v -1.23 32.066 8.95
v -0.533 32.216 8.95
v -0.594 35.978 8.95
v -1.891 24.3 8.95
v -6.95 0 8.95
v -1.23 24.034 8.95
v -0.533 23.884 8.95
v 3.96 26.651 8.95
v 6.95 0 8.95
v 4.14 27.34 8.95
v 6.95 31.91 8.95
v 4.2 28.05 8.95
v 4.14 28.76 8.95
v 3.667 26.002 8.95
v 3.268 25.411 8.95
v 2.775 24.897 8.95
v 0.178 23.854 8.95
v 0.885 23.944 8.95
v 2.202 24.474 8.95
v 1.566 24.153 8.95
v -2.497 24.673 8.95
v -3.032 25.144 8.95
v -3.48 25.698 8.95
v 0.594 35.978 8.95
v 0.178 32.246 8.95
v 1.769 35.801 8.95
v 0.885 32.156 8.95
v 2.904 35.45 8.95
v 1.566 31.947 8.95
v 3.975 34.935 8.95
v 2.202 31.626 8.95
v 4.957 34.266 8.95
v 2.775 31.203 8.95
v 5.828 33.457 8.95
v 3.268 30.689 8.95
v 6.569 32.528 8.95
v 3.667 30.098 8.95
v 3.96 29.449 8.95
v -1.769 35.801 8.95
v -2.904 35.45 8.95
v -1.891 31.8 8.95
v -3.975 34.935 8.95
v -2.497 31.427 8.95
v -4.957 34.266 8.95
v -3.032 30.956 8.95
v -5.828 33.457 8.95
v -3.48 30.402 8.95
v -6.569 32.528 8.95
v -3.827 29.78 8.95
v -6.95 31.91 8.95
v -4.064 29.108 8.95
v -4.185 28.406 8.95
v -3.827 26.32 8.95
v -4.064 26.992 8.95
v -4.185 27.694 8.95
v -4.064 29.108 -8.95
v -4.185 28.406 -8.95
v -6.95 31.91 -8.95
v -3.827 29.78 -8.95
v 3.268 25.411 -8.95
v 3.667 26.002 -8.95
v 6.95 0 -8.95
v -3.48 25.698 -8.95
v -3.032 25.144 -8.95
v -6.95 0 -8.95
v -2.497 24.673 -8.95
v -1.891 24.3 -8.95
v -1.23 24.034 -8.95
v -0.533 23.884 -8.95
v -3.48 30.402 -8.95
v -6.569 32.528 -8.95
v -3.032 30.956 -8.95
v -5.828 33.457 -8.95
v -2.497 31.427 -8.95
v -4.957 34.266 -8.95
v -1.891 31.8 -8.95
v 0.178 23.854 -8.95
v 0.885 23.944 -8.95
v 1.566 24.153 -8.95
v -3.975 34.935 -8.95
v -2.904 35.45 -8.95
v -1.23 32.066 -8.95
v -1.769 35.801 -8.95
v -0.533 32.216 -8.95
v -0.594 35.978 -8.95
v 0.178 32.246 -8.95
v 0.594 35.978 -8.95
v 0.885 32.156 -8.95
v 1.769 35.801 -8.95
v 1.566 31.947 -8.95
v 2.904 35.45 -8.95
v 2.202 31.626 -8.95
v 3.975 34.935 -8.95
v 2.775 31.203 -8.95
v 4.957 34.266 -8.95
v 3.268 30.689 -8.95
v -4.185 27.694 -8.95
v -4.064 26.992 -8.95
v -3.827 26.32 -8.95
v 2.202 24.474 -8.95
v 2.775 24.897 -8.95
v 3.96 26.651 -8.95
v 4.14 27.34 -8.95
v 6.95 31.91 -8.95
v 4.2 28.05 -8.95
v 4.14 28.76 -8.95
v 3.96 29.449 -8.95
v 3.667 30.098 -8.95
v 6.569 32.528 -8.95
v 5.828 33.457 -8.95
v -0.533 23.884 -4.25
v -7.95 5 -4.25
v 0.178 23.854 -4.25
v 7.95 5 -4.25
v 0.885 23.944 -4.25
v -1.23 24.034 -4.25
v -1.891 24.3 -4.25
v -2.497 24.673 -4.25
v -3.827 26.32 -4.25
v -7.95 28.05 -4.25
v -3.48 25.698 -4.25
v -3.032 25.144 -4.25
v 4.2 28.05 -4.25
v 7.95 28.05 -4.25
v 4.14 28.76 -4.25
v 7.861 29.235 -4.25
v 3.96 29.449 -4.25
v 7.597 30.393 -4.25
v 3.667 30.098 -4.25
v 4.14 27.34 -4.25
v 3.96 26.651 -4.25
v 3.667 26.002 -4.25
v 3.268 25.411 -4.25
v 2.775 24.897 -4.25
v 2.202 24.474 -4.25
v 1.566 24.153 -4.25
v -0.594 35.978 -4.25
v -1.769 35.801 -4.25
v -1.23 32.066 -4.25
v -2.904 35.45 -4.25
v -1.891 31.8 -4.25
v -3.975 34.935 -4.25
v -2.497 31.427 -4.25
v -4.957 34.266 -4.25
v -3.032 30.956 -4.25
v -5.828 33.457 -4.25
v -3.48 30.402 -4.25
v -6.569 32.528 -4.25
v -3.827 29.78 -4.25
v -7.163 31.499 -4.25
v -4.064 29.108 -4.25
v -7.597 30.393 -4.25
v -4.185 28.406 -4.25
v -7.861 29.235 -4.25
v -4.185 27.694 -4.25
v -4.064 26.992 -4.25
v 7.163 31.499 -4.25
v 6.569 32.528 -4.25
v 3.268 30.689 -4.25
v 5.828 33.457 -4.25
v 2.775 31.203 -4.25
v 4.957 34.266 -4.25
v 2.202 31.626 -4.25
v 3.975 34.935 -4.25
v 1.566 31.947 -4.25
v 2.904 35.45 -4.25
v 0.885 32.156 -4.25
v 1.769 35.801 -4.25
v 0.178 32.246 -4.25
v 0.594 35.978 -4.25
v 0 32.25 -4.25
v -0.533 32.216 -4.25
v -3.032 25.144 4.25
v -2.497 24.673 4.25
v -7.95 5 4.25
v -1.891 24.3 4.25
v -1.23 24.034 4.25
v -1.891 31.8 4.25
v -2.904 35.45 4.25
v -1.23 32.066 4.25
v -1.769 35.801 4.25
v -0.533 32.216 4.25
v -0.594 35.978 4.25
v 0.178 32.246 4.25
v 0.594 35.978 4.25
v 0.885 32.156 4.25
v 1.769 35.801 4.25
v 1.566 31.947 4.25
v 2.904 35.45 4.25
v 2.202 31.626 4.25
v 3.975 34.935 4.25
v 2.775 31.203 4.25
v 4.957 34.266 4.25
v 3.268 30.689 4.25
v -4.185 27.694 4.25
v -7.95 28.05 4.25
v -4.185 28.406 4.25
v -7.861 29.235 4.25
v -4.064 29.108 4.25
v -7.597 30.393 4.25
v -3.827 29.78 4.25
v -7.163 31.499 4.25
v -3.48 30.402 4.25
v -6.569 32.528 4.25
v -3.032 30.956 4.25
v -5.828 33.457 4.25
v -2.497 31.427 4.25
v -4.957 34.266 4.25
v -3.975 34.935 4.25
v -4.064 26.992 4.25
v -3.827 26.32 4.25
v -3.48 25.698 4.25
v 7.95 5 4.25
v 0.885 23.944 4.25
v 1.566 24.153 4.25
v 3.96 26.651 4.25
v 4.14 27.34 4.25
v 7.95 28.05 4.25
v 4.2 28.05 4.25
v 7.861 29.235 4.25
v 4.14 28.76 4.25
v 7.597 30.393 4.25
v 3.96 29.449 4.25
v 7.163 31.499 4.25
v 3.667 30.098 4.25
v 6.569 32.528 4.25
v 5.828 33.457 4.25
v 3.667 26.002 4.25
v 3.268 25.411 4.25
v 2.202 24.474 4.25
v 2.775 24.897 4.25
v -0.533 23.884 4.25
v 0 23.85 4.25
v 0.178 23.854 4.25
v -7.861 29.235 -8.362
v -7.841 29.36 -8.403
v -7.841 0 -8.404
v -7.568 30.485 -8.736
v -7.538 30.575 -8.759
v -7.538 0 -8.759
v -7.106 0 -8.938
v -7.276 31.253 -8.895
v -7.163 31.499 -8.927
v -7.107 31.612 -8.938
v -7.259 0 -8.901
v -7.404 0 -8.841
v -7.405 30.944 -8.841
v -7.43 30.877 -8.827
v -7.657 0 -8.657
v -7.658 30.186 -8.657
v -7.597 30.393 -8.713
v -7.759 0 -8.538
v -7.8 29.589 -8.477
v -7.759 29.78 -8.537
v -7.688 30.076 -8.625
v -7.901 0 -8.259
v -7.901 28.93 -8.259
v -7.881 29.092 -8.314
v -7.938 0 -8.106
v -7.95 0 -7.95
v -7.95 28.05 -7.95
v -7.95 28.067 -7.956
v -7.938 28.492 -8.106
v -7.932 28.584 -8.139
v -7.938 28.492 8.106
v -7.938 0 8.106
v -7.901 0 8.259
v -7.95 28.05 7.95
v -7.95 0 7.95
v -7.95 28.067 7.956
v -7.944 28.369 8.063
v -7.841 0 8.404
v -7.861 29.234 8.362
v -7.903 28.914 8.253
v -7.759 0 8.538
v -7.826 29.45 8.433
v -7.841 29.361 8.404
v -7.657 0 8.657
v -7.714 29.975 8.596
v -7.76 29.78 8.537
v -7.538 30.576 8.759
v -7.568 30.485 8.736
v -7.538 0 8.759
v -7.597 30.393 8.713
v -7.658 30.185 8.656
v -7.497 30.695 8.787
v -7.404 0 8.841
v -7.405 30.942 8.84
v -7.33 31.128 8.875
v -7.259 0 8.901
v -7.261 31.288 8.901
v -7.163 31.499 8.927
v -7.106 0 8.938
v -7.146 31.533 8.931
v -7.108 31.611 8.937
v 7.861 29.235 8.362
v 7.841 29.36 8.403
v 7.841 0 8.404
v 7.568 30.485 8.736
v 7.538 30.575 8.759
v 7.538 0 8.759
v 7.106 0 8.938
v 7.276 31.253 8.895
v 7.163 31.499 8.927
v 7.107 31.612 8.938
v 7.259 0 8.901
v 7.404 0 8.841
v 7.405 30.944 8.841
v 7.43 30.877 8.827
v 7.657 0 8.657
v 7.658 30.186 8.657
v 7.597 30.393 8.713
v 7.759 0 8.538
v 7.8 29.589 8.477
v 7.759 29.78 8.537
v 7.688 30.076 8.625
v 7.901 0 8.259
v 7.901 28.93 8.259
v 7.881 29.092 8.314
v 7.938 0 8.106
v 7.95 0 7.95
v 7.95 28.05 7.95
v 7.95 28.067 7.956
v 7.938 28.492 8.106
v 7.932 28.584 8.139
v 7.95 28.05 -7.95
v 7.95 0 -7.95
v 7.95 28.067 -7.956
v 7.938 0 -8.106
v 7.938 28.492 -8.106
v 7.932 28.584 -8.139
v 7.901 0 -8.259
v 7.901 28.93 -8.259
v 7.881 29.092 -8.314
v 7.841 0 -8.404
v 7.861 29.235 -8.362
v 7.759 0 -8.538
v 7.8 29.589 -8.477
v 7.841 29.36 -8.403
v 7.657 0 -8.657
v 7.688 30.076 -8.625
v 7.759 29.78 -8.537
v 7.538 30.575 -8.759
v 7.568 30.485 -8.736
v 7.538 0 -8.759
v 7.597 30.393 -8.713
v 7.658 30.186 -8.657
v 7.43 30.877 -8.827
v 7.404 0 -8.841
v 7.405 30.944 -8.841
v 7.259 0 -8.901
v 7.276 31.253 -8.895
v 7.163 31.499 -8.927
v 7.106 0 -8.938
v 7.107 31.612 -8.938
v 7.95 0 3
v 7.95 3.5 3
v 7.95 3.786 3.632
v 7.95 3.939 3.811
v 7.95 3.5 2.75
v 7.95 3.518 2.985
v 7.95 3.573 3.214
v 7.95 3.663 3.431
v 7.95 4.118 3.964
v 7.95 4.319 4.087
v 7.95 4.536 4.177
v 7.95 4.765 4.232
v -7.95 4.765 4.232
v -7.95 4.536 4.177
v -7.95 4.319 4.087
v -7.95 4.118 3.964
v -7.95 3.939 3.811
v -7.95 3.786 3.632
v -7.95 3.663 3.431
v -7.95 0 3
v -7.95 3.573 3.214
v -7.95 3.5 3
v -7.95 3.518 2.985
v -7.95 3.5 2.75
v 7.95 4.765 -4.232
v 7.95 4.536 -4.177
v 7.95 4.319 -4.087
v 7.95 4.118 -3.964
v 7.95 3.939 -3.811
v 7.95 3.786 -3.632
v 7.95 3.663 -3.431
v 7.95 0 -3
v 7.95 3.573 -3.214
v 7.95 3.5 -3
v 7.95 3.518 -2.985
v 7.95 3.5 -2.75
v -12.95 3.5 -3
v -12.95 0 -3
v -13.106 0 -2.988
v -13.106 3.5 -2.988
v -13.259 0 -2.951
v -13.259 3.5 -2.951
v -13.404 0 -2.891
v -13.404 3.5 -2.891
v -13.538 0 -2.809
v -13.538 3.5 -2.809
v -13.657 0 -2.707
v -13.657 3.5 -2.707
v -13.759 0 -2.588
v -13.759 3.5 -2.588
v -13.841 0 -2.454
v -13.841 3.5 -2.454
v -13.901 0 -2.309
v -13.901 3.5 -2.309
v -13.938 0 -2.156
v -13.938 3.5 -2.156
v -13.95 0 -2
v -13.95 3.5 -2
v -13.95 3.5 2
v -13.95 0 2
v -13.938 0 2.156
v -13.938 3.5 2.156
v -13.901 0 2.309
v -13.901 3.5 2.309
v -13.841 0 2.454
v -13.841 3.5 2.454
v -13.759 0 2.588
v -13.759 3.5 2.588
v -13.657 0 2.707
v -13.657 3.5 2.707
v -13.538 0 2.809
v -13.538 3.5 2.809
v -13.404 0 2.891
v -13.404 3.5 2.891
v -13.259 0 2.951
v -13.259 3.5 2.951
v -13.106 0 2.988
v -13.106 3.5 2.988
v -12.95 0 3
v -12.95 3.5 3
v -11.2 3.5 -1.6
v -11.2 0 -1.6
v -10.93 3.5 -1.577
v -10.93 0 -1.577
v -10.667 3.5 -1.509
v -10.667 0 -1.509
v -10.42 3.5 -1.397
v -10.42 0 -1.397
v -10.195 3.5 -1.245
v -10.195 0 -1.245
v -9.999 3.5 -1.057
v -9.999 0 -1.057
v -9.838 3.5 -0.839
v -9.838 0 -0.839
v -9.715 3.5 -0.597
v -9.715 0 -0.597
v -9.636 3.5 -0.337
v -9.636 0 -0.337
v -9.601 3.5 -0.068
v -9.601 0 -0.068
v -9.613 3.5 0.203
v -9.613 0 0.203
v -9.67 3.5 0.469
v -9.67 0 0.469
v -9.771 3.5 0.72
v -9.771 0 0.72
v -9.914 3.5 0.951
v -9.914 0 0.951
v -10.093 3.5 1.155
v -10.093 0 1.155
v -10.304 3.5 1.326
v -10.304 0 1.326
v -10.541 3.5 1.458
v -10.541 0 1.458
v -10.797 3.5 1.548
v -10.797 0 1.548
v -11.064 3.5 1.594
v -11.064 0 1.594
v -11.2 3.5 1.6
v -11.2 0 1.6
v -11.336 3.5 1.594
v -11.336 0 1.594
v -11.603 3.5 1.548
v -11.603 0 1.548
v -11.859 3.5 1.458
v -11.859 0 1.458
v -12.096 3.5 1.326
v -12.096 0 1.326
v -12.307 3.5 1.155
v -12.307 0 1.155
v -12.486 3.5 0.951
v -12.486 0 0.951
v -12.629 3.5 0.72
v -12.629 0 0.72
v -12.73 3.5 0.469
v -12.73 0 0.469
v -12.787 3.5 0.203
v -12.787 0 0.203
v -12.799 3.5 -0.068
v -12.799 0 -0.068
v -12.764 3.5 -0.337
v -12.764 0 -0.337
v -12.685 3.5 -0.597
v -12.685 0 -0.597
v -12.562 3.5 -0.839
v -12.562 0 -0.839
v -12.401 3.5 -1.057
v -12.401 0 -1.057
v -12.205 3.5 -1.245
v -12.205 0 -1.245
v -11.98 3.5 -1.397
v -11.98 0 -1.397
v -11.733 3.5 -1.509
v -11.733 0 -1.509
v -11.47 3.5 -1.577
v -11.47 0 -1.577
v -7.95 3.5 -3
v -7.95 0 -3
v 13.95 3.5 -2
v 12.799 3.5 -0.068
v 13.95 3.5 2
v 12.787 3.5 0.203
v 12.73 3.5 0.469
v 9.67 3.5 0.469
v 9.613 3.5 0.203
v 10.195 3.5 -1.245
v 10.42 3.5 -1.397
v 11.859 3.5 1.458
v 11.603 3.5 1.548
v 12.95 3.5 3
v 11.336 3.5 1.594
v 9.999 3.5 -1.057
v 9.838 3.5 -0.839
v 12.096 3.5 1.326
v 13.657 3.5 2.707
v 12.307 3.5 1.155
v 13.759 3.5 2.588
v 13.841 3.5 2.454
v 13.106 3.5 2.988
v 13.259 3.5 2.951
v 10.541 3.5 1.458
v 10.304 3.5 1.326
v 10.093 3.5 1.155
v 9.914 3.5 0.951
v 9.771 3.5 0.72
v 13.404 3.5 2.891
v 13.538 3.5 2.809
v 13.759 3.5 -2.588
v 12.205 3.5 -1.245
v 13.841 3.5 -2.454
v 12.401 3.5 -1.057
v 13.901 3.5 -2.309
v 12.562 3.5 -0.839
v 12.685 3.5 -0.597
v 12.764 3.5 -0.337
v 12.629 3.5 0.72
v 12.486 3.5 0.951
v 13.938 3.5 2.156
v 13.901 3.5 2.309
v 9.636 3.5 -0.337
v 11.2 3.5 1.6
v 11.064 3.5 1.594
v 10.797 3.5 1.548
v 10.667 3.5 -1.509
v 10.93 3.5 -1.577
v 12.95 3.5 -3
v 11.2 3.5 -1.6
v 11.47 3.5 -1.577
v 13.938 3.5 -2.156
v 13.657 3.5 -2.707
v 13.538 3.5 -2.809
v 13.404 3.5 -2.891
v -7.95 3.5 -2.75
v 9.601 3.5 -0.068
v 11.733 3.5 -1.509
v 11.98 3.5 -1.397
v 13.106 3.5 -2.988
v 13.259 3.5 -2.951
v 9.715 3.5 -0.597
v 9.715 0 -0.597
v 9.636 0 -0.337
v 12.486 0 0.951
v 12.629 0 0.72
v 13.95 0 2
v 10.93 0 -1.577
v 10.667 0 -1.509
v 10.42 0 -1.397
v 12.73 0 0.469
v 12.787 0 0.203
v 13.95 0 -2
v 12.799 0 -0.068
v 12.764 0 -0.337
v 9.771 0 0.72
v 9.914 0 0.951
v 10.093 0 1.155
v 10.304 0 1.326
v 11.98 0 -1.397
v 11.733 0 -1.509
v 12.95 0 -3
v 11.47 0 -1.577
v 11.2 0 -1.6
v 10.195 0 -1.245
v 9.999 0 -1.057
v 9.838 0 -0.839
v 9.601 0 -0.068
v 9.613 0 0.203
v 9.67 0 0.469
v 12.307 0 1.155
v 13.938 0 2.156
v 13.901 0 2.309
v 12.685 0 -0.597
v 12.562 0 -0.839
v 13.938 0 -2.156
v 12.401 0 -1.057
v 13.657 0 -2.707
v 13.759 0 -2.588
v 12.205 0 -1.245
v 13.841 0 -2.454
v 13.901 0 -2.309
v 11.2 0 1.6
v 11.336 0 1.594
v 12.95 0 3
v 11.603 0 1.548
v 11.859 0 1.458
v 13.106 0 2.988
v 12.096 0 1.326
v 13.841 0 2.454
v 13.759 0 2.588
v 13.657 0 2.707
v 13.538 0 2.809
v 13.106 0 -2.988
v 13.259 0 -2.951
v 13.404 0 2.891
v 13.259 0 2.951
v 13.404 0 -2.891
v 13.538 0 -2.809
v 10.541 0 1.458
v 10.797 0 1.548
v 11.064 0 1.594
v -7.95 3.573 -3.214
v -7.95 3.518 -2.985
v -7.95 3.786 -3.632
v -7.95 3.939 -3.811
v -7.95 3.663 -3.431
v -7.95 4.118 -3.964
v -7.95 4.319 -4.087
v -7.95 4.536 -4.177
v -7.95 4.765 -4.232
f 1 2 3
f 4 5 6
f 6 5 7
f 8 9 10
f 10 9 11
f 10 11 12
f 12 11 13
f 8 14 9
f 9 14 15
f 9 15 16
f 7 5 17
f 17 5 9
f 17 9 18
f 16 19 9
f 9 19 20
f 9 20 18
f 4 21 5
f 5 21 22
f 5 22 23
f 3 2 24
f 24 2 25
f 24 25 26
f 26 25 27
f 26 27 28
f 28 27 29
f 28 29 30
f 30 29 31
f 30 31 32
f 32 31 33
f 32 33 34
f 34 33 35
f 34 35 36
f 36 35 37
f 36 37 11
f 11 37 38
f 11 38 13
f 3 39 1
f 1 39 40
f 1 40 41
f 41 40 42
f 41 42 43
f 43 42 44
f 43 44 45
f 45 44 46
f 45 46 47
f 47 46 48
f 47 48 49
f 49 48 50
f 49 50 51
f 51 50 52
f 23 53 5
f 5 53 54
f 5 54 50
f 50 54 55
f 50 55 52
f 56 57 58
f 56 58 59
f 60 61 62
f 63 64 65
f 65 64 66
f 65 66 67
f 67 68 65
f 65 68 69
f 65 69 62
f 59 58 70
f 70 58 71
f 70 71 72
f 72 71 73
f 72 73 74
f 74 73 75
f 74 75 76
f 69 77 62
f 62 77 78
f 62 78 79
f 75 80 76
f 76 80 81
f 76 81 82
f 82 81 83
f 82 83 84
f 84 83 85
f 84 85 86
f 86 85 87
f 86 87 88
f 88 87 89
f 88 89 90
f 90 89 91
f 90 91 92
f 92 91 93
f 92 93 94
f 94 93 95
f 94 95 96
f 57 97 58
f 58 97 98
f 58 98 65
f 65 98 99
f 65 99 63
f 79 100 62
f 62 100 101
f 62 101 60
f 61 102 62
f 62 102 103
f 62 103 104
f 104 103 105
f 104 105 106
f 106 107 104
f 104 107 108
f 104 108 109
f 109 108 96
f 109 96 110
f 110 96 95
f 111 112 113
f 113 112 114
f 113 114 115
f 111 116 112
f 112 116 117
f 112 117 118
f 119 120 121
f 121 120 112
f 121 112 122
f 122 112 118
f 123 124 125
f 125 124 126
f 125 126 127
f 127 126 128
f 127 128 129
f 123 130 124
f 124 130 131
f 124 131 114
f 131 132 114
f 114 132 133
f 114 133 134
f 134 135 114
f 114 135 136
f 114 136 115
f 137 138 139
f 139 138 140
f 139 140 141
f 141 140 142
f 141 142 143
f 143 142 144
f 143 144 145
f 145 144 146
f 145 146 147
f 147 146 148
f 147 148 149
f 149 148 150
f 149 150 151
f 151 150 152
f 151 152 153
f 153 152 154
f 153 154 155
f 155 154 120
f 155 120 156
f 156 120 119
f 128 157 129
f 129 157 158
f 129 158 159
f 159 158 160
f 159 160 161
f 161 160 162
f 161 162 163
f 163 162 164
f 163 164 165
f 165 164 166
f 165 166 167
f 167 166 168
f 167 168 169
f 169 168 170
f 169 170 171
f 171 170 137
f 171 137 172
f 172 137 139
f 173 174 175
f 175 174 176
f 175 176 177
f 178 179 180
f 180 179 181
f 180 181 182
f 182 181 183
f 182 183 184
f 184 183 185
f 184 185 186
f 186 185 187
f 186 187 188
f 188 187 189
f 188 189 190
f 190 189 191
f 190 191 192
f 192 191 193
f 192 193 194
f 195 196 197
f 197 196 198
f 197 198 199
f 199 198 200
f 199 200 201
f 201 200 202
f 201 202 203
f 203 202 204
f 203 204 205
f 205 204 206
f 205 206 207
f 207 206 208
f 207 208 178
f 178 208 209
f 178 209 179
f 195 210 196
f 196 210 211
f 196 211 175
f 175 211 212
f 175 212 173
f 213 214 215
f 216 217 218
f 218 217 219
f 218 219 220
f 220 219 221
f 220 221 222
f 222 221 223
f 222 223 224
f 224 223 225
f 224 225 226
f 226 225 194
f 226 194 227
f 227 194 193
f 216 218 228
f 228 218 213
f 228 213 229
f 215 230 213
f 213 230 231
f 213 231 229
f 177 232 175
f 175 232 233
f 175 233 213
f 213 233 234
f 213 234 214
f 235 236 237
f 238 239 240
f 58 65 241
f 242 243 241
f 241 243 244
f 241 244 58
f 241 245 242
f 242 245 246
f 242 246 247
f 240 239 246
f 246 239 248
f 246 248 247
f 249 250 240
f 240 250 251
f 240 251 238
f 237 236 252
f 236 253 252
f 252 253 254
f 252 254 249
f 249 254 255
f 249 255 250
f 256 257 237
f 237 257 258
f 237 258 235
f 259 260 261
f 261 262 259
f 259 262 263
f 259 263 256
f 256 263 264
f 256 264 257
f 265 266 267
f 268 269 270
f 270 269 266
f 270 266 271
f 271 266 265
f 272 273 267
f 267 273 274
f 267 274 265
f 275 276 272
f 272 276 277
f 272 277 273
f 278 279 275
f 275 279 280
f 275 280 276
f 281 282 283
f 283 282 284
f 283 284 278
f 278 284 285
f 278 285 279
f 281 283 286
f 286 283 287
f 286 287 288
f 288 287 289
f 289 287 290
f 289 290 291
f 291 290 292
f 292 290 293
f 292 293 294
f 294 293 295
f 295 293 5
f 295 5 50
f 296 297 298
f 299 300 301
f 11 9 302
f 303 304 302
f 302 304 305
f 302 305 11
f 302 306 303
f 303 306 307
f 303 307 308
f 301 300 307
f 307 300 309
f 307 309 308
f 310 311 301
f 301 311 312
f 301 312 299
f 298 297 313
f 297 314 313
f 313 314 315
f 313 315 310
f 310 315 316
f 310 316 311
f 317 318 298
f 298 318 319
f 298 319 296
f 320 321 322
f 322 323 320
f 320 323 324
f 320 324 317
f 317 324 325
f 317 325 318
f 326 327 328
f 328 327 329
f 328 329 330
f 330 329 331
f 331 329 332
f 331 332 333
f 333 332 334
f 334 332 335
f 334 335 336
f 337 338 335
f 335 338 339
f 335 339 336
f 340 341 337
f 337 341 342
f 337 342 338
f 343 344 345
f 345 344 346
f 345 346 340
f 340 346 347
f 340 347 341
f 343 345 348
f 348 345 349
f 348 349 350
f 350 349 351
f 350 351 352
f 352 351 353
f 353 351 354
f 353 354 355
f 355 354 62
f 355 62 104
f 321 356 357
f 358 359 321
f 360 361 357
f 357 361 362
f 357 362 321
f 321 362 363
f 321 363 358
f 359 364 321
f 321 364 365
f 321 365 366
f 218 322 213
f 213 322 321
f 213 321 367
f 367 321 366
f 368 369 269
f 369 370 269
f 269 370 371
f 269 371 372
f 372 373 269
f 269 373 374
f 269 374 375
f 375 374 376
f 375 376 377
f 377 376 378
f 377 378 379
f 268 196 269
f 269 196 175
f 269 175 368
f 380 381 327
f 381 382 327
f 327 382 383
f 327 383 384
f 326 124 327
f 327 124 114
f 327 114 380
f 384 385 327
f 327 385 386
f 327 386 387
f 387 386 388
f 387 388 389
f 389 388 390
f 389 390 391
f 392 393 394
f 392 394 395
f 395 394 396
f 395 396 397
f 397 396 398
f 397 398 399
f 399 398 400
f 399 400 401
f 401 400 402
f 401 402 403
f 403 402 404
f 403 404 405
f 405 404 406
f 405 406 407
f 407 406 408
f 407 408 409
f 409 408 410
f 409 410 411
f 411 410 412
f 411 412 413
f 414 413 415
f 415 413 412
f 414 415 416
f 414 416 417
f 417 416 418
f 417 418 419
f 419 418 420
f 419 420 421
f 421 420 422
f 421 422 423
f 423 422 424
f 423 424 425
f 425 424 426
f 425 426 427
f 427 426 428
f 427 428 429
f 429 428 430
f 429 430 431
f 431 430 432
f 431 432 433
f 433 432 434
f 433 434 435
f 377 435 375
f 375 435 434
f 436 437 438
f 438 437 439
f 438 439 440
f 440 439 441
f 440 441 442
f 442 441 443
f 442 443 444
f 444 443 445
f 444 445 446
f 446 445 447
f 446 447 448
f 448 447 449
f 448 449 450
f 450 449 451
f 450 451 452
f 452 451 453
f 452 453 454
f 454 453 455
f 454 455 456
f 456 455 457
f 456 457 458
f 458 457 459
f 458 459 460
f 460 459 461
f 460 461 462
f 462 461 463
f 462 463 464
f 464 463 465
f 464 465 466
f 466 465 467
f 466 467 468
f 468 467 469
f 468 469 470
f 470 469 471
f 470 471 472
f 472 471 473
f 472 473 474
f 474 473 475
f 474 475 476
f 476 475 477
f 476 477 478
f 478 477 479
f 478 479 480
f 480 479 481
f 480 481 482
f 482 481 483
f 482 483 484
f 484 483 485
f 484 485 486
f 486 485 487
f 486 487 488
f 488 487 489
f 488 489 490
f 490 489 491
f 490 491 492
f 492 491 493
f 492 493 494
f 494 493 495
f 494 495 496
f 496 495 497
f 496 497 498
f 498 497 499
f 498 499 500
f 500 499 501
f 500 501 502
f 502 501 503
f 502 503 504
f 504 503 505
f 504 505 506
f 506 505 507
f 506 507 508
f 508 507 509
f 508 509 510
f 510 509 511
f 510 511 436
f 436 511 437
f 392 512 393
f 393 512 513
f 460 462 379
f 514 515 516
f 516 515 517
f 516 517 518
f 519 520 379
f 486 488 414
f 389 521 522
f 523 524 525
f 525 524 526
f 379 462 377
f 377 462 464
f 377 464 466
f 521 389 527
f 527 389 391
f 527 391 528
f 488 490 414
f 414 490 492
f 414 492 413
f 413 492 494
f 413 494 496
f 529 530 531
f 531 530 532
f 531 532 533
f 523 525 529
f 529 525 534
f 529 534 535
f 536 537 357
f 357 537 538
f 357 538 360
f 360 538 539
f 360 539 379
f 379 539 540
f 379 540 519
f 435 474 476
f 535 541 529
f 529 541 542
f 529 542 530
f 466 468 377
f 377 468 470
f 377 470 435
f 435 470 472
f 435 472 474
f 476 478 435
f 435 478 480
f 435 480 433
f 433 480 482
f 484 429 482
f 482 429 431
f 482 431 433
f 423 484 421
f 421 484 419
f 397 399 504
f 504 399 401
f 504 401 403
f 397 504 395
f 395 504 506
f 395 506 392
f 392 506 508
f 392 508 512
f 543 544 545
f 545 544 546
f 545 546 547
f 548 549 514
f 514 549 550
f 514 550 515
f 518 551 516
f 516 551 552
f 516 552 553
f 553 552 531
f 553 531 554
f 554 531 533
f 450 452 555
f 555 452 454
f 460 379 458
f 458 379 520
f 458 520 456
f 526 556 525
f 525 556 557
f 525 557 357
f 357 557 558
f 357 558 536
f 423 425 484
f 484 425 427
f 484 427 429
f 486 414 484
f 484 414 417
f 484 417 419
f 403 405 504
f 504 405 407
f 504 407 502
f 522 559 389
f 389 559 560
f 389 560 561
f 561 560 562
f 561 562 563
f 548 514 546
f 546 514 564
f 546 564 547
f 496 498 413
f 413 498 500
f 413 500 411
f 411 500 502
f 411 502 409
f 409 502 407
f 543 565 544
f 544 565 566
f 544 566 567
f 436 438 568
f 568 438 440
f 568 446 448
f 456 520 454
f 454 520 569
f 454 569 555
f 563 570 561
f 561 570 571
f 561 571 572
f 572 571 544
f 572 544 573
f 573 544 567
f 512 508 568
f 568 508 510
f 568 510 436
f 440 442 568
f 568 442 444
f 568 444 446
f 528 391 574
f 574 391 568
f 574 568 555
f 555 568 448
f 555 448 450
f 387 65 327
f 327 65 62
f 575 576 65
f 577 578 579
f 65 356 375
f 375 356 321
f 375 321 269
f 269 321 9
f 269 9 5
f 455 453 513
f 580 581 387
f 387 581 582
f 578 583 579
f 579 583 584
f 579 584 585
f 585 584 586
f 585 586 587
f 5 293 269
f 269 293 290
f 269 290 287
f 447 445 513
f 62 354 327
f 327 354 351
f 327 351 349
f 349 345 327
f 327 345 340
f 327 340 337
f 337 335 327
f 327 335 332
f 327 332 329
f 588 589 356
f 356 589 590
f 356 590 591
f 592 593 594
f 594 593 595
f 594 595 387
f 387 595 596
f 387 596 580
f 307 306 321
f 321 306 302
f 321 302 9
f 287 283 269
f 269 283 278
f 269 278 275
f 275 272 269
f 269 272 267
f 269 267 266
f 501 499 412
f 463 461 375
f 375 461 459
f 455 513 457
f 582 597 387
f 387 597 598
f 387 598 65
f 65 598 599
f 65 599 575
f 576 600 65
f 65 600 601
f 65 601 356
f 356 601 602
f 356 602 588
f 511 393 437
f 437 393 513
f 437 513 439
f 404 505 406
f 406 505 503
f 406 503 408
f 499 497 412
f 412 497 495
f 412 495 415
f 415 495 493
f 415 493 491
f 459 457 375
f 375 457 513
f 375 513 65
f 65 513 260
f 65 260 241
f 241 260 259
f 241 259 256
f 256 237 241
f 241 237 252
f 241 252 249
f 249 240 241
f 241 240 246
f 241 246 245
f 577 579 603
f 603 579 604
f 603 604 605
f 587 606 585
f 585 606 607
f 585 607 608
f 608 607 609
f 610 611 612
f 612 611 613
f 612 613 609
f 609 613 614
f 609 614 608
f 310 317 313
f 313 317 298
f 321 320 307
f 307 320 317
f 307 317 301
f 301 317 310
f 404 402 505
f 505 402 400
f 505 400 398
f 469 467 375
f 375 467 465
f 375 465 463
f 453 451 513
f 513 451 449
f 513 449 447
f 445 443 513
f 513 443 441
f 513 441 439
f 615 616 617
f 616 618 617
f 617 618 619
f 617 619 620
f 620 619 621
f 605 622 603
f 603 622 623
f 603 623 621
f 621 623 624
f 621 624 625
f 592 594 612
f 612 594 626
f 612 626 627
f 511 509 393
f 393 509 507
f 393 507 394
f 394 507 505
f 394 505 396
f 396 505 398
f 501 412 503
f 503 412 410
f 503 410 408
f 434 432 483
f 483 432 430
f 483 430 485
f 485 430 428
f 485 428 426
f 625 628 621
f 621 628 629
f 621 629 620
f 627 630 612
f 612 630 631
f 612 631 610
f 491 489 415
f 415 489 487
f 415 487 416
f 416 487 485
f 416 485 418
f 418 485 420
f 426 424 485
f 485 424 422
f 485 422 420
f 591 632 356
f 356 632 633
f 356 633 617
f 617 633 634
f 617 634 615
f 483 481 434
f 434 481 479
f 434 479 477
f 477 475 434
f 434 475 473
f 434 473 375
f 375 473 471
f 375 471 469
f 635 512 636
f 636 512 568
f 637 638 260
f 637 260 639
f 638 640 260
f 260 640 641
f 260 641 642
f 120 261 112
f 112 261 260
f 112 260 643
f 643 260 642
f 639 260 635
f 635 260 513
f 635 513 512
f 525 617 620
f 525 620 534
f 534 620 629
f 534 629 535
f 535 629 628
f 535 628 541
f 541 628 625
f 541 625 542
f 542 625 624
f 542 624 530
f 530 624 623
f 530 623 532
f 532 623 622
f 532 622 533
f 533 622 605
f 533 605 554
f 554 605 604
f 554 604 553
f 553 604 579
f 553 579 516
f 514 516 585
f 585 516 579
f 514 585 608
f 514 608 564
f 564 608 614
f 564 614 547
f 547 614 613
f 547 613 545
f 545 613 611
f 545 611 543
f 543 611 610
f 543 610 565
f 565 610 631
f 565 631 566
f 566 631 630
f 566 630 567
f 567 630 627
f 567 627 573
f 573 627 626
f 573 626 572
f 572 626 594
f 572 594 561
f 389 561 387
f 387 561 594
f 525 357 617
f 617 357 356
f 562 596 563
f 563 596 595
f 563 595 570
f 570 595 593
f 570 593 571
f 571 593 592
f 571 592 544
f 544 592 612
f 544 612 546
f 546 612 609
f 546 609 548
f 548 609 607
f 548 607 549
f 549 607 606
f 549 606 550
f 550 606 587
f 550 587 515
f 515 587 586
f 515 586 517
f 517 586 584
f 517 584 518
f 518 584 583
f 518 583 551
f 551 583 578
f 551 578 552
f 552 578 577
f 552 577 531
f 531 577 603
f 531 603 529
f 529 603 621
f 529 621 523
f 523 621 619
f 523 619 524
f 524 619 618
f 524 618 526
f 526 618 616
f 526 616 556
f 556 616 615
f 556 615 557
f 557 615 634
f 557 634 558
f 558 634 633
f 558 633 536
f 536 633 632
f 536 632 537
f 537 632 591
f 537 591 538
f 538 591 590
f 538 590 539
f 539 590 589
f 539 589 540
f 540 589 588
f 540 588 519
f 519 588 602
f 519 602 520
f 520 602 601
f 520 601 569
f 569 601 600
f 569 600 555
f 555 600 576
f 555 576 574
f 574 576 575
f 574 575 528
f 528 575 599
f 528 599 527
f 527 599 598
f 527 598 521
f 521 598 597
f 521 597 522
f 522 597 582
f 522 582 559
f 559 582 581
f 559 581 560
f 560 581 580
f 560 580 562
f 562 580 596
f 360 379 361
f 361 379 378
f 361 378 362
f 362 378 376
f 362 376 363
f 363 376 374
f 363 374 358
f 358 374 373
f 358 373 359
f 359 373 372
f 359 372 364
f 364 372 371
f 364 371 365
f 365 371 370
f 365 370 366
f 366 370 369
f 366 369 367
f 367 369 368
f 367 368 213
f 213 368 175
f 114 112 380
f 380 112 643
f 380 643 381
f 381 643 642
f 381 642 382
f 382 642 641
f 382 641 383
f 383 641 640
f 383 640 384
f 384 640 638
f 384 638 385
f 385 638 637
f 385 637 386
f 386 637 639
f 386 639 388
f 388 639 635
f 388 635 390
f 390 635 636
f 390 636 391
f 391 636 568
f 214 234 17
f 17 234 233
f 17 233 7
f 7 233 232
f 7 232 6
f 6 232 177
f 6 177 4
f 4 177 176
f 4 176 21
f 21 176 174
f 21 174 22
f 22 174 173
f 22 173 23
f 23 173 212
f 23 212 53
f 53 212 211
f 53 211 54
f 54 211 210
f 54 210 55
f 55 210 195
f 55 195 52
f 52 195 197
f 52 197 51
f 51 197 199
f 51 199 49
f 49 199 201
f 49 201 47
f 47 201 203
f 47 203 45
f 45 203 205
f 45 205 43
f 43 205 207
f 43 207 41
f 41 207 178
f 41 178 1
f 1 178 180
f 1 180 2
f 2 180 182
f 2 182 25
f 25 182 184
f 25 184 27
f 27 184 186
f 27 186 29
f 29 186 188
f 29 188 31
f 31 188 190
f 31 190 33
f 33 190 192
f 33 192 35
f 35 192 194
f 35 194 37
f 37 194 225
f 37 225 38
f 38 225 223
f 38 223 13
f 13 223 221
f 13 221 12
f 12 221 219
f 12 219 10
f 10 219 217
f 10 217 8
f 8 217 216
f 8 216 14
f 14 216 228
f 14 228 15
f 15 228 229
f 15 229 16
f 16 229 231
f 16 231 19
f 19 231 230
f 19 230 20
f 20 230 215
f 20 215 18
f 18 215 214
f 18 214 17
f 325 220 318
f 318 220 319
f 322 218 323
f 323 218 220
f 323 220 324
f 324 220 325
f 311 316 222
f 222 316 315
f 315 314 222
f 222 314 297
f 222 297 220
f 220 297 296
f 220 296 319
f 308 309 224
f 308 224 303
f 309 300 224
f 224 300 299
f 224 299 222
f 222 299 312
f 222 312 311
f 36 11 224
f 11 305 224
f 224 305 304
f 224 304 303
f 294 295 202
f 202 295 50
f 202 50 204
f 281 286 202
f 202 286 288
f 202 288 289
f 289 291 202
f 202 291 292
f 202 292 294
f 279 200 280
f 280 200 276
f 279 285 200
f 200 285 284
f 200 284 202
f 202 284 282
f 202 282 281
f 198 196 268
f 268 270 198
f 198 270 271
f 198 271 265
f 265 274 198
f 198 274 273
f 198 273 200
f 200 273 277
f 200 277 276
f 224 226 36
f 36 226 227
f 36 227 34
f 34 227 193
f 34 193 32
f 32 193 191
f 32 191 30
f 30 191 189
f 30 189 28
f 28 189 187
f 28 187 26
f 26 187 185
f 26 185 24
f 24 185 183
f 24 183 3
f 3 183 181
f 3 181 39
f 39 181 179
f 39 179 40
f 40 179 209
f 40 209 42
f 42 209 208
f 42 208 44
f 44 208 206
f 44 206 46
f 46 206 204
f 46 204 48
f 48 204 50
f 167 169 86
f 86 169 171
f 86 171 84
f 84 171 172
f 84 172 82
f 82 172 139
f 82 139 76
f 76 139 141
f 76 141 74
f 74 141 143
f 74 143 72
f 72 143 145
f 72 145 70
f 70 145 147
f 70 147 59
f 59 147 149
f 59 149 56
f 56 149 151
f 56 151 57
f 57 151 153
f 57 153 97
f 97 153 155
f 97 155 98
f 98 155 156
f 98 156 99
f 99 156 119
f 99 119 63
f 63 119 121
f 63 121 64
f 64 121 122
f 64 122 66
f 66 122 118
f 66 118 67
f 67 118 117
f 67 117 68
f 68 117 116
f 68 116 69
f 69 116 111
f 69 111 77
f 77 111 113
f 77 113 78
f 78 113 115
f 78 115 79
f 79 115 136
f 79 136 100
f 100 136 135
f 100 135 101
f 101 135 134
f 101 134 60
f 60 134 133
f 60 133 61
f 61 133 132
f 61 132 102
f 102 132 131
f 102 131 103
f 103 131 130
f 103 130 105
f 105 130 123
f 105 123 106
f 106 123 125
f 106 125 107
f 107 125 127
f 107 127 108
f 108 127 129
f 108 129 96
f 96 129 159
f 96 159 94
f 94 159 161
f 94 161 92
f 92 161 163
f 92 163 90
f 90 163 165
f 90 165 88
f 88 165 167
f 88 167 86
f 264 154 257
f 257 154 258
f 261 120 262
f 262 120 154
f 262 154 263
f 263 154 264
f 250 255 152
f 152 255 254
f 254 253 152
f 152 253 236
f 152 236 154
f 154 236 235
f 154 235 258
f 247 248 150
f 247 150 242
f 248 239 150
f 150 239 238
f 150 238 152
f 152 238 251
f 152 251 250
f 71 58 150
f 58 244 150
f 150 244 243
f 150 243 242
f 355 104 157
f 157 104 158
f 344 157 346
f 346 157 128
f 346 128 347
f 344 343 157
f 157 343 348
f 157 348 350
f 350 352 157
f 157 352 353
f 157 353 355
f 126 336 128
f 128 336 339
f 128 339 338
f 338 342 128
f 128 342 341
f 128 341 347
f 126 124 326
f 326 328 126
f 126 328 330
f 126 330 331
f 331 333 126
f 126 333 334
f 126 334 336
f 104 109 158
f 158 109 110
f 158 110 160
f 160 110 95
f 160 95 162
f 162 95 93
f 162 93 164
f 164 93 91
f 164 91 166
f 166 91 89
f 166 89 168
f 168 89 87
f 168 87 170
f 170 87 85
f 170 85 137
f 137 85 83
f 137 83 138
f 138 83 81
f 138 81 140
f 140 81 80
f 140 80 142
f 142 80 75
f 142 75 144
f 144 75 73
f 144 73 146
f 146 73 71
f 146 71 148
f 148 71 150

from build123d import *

# Parameters (mm, degrees)
HOLES1_R           = 1.6
HOLES_DEPTH        = 3.5
HOLES_2_DEPTH      = 3.5
BOSS_EXTRUDE_DEPTH = 36
CUT_EXTRUDE1_DEPTH = 44.077981615
HOLE2_R            = 4.2
CUT_EXTRUDE2_DEPTH = 43.555992527


with BuildPart() as part:
    # Holes1 → Holes (new body)
    with BuildSketch(Plane(origin=(0, 0, 0), x_dir=(1, 0, 0), z_dir=(0, 1, 0))):
        with BuildLine():
            Line((-12.95, -3), (-7.95, -3))
            Line((-7.95, -3), (-7.95, 3))
            Line((-7.95, 3), (-12.95, 3))
            ThreePointArc((-12.95, 3), (-13.657106781, 2.707106781), (-13.95, 2))
            Line((-13.95, 2), (-13.95, -2))
            ThreePointArc((-13.95, -2), (-13.657106781, -2.707106781), (-12.95, -3))
        make_face()
        with Locations((-11.2, 0)):
            Circle(HOLES1_R, mode=Mode.SUBTRACT)
    extrude(amount=HOLES_DEPTH)



with BuildPart() as body_2:
    # Holes1 → Holes 2 (new body)
    with BuildSketch(Plane(origin=(0, 0, 0), x_dir=(1, 0, 0), z_dir=(0, 1, 0))):
        with BuildLine():
            Line((7.95, 3), (7.95, -3))
            Line((7.95, -3), (12.95, -3))
            ThreePointArc((12.95, -3), (13.657106781, -2.707106781), (13.95, -2))
            Line((13.95, -2), (13.95, 2))
            ThreePointArc((13.95, 2), (13.657106781, 2.707106781), (12.95, 3))
            Line((12.95, 3), (7.95, 3))
        make_face()
        with Locations((11.2, 0)):
            Circle(HOLES1_R, mode=Mode.SUBTRACT)
    extrude(amount=HOLES_2_DEPTH)


with BuildPart() as part_1:
    add(part.part)

    add(body_2.part)  # Boss-Extrude merges body 2
    # Sketch<3> → Boss-Extrude (add)
    with BuildSketch(Plane(origin=(0, 0, 0), x_dir=(1, 0, 0), z_dir=(0, 1, 0))):
        with BuildLine():
            Line((6.95, 8.95), (-6.95, 8.95))
            ThreePointArc((-6.95, 8.95), (-7.657106781, 8.657106781), (-7.95, 7.95))
            Line((-7.95, 7.95), (-7.95, -7.95))
            ThreePointArc((-7.95, -7.95), (-7.657106781, -8.657106781), (-6.95, -8.95))
            Line((-6.95, -8.95), (6.95, -8.95))
            ThreePointArc((6.95, -8.95), (7.657106781, -8.657106781), (7.95, -7.95))
            Line((7.95, -7.95), (7.95, 7.95))
            ThreePointArc((7.95, 7.95), (7.657106781, 8.657106781), (6.95, 8.95))
        make_face()
    extrude(amount=BOSS_EXTRUDE_DEPTH)

    # CUT → Cut-Extrude1 (cut, through all)
    with BuildSketch(Plane.ZY.offset(7.95)):
        with BuildLine():
            Line((-4.25, 36), (4.25, 36))
            Line((4.25, 36), (4.25, 5))
            ThreePointArc((4.25, 5), (3.810660172, 3.939339828), (2.75, 3.5))
            Line((2.75, 3.5), (-2.75, 3.5))
            ThreePointArc((-2.75, 3.5), (-3.810660172, 3.939339828), (-4.25, 5))
            Line((-4.25, 5), (-4.25, 36))
        make_face()
    extrude(amount=-CUT_EXTRUDE1_DEPTH, mode=Mode.SUBTRACT)

    # Hole2 → Cut-Extrude2 (cut, through all)
    with BuildSketch(Plane.XY.offset(8.95)):
        with BuildLine():
            Line((-7.95, 36), (-7.95, 28.05))
            ThreePointArc((-7.95, 28.05), (-5.62149891, 33.67149891), (0, 36))
            Line((0, 36), (-7.95, 36))
        make_face()
        with BuildLine():
            ThreePointArc((0, 36), (5.62149891, 33.67149891), (7.95, 28.05))
            Line((7.95, 28.05), (7.95, 36))
            Line((7.95, 36), (0, 36))
        make_face()
        with Locations((0, 28.05)):
            Circle(HOLE2_R)
    extrude(amount=-CUT_EXTRUDE2_DEPTH, mode=Mode.SUBTRACT)


solid = part_1.part
